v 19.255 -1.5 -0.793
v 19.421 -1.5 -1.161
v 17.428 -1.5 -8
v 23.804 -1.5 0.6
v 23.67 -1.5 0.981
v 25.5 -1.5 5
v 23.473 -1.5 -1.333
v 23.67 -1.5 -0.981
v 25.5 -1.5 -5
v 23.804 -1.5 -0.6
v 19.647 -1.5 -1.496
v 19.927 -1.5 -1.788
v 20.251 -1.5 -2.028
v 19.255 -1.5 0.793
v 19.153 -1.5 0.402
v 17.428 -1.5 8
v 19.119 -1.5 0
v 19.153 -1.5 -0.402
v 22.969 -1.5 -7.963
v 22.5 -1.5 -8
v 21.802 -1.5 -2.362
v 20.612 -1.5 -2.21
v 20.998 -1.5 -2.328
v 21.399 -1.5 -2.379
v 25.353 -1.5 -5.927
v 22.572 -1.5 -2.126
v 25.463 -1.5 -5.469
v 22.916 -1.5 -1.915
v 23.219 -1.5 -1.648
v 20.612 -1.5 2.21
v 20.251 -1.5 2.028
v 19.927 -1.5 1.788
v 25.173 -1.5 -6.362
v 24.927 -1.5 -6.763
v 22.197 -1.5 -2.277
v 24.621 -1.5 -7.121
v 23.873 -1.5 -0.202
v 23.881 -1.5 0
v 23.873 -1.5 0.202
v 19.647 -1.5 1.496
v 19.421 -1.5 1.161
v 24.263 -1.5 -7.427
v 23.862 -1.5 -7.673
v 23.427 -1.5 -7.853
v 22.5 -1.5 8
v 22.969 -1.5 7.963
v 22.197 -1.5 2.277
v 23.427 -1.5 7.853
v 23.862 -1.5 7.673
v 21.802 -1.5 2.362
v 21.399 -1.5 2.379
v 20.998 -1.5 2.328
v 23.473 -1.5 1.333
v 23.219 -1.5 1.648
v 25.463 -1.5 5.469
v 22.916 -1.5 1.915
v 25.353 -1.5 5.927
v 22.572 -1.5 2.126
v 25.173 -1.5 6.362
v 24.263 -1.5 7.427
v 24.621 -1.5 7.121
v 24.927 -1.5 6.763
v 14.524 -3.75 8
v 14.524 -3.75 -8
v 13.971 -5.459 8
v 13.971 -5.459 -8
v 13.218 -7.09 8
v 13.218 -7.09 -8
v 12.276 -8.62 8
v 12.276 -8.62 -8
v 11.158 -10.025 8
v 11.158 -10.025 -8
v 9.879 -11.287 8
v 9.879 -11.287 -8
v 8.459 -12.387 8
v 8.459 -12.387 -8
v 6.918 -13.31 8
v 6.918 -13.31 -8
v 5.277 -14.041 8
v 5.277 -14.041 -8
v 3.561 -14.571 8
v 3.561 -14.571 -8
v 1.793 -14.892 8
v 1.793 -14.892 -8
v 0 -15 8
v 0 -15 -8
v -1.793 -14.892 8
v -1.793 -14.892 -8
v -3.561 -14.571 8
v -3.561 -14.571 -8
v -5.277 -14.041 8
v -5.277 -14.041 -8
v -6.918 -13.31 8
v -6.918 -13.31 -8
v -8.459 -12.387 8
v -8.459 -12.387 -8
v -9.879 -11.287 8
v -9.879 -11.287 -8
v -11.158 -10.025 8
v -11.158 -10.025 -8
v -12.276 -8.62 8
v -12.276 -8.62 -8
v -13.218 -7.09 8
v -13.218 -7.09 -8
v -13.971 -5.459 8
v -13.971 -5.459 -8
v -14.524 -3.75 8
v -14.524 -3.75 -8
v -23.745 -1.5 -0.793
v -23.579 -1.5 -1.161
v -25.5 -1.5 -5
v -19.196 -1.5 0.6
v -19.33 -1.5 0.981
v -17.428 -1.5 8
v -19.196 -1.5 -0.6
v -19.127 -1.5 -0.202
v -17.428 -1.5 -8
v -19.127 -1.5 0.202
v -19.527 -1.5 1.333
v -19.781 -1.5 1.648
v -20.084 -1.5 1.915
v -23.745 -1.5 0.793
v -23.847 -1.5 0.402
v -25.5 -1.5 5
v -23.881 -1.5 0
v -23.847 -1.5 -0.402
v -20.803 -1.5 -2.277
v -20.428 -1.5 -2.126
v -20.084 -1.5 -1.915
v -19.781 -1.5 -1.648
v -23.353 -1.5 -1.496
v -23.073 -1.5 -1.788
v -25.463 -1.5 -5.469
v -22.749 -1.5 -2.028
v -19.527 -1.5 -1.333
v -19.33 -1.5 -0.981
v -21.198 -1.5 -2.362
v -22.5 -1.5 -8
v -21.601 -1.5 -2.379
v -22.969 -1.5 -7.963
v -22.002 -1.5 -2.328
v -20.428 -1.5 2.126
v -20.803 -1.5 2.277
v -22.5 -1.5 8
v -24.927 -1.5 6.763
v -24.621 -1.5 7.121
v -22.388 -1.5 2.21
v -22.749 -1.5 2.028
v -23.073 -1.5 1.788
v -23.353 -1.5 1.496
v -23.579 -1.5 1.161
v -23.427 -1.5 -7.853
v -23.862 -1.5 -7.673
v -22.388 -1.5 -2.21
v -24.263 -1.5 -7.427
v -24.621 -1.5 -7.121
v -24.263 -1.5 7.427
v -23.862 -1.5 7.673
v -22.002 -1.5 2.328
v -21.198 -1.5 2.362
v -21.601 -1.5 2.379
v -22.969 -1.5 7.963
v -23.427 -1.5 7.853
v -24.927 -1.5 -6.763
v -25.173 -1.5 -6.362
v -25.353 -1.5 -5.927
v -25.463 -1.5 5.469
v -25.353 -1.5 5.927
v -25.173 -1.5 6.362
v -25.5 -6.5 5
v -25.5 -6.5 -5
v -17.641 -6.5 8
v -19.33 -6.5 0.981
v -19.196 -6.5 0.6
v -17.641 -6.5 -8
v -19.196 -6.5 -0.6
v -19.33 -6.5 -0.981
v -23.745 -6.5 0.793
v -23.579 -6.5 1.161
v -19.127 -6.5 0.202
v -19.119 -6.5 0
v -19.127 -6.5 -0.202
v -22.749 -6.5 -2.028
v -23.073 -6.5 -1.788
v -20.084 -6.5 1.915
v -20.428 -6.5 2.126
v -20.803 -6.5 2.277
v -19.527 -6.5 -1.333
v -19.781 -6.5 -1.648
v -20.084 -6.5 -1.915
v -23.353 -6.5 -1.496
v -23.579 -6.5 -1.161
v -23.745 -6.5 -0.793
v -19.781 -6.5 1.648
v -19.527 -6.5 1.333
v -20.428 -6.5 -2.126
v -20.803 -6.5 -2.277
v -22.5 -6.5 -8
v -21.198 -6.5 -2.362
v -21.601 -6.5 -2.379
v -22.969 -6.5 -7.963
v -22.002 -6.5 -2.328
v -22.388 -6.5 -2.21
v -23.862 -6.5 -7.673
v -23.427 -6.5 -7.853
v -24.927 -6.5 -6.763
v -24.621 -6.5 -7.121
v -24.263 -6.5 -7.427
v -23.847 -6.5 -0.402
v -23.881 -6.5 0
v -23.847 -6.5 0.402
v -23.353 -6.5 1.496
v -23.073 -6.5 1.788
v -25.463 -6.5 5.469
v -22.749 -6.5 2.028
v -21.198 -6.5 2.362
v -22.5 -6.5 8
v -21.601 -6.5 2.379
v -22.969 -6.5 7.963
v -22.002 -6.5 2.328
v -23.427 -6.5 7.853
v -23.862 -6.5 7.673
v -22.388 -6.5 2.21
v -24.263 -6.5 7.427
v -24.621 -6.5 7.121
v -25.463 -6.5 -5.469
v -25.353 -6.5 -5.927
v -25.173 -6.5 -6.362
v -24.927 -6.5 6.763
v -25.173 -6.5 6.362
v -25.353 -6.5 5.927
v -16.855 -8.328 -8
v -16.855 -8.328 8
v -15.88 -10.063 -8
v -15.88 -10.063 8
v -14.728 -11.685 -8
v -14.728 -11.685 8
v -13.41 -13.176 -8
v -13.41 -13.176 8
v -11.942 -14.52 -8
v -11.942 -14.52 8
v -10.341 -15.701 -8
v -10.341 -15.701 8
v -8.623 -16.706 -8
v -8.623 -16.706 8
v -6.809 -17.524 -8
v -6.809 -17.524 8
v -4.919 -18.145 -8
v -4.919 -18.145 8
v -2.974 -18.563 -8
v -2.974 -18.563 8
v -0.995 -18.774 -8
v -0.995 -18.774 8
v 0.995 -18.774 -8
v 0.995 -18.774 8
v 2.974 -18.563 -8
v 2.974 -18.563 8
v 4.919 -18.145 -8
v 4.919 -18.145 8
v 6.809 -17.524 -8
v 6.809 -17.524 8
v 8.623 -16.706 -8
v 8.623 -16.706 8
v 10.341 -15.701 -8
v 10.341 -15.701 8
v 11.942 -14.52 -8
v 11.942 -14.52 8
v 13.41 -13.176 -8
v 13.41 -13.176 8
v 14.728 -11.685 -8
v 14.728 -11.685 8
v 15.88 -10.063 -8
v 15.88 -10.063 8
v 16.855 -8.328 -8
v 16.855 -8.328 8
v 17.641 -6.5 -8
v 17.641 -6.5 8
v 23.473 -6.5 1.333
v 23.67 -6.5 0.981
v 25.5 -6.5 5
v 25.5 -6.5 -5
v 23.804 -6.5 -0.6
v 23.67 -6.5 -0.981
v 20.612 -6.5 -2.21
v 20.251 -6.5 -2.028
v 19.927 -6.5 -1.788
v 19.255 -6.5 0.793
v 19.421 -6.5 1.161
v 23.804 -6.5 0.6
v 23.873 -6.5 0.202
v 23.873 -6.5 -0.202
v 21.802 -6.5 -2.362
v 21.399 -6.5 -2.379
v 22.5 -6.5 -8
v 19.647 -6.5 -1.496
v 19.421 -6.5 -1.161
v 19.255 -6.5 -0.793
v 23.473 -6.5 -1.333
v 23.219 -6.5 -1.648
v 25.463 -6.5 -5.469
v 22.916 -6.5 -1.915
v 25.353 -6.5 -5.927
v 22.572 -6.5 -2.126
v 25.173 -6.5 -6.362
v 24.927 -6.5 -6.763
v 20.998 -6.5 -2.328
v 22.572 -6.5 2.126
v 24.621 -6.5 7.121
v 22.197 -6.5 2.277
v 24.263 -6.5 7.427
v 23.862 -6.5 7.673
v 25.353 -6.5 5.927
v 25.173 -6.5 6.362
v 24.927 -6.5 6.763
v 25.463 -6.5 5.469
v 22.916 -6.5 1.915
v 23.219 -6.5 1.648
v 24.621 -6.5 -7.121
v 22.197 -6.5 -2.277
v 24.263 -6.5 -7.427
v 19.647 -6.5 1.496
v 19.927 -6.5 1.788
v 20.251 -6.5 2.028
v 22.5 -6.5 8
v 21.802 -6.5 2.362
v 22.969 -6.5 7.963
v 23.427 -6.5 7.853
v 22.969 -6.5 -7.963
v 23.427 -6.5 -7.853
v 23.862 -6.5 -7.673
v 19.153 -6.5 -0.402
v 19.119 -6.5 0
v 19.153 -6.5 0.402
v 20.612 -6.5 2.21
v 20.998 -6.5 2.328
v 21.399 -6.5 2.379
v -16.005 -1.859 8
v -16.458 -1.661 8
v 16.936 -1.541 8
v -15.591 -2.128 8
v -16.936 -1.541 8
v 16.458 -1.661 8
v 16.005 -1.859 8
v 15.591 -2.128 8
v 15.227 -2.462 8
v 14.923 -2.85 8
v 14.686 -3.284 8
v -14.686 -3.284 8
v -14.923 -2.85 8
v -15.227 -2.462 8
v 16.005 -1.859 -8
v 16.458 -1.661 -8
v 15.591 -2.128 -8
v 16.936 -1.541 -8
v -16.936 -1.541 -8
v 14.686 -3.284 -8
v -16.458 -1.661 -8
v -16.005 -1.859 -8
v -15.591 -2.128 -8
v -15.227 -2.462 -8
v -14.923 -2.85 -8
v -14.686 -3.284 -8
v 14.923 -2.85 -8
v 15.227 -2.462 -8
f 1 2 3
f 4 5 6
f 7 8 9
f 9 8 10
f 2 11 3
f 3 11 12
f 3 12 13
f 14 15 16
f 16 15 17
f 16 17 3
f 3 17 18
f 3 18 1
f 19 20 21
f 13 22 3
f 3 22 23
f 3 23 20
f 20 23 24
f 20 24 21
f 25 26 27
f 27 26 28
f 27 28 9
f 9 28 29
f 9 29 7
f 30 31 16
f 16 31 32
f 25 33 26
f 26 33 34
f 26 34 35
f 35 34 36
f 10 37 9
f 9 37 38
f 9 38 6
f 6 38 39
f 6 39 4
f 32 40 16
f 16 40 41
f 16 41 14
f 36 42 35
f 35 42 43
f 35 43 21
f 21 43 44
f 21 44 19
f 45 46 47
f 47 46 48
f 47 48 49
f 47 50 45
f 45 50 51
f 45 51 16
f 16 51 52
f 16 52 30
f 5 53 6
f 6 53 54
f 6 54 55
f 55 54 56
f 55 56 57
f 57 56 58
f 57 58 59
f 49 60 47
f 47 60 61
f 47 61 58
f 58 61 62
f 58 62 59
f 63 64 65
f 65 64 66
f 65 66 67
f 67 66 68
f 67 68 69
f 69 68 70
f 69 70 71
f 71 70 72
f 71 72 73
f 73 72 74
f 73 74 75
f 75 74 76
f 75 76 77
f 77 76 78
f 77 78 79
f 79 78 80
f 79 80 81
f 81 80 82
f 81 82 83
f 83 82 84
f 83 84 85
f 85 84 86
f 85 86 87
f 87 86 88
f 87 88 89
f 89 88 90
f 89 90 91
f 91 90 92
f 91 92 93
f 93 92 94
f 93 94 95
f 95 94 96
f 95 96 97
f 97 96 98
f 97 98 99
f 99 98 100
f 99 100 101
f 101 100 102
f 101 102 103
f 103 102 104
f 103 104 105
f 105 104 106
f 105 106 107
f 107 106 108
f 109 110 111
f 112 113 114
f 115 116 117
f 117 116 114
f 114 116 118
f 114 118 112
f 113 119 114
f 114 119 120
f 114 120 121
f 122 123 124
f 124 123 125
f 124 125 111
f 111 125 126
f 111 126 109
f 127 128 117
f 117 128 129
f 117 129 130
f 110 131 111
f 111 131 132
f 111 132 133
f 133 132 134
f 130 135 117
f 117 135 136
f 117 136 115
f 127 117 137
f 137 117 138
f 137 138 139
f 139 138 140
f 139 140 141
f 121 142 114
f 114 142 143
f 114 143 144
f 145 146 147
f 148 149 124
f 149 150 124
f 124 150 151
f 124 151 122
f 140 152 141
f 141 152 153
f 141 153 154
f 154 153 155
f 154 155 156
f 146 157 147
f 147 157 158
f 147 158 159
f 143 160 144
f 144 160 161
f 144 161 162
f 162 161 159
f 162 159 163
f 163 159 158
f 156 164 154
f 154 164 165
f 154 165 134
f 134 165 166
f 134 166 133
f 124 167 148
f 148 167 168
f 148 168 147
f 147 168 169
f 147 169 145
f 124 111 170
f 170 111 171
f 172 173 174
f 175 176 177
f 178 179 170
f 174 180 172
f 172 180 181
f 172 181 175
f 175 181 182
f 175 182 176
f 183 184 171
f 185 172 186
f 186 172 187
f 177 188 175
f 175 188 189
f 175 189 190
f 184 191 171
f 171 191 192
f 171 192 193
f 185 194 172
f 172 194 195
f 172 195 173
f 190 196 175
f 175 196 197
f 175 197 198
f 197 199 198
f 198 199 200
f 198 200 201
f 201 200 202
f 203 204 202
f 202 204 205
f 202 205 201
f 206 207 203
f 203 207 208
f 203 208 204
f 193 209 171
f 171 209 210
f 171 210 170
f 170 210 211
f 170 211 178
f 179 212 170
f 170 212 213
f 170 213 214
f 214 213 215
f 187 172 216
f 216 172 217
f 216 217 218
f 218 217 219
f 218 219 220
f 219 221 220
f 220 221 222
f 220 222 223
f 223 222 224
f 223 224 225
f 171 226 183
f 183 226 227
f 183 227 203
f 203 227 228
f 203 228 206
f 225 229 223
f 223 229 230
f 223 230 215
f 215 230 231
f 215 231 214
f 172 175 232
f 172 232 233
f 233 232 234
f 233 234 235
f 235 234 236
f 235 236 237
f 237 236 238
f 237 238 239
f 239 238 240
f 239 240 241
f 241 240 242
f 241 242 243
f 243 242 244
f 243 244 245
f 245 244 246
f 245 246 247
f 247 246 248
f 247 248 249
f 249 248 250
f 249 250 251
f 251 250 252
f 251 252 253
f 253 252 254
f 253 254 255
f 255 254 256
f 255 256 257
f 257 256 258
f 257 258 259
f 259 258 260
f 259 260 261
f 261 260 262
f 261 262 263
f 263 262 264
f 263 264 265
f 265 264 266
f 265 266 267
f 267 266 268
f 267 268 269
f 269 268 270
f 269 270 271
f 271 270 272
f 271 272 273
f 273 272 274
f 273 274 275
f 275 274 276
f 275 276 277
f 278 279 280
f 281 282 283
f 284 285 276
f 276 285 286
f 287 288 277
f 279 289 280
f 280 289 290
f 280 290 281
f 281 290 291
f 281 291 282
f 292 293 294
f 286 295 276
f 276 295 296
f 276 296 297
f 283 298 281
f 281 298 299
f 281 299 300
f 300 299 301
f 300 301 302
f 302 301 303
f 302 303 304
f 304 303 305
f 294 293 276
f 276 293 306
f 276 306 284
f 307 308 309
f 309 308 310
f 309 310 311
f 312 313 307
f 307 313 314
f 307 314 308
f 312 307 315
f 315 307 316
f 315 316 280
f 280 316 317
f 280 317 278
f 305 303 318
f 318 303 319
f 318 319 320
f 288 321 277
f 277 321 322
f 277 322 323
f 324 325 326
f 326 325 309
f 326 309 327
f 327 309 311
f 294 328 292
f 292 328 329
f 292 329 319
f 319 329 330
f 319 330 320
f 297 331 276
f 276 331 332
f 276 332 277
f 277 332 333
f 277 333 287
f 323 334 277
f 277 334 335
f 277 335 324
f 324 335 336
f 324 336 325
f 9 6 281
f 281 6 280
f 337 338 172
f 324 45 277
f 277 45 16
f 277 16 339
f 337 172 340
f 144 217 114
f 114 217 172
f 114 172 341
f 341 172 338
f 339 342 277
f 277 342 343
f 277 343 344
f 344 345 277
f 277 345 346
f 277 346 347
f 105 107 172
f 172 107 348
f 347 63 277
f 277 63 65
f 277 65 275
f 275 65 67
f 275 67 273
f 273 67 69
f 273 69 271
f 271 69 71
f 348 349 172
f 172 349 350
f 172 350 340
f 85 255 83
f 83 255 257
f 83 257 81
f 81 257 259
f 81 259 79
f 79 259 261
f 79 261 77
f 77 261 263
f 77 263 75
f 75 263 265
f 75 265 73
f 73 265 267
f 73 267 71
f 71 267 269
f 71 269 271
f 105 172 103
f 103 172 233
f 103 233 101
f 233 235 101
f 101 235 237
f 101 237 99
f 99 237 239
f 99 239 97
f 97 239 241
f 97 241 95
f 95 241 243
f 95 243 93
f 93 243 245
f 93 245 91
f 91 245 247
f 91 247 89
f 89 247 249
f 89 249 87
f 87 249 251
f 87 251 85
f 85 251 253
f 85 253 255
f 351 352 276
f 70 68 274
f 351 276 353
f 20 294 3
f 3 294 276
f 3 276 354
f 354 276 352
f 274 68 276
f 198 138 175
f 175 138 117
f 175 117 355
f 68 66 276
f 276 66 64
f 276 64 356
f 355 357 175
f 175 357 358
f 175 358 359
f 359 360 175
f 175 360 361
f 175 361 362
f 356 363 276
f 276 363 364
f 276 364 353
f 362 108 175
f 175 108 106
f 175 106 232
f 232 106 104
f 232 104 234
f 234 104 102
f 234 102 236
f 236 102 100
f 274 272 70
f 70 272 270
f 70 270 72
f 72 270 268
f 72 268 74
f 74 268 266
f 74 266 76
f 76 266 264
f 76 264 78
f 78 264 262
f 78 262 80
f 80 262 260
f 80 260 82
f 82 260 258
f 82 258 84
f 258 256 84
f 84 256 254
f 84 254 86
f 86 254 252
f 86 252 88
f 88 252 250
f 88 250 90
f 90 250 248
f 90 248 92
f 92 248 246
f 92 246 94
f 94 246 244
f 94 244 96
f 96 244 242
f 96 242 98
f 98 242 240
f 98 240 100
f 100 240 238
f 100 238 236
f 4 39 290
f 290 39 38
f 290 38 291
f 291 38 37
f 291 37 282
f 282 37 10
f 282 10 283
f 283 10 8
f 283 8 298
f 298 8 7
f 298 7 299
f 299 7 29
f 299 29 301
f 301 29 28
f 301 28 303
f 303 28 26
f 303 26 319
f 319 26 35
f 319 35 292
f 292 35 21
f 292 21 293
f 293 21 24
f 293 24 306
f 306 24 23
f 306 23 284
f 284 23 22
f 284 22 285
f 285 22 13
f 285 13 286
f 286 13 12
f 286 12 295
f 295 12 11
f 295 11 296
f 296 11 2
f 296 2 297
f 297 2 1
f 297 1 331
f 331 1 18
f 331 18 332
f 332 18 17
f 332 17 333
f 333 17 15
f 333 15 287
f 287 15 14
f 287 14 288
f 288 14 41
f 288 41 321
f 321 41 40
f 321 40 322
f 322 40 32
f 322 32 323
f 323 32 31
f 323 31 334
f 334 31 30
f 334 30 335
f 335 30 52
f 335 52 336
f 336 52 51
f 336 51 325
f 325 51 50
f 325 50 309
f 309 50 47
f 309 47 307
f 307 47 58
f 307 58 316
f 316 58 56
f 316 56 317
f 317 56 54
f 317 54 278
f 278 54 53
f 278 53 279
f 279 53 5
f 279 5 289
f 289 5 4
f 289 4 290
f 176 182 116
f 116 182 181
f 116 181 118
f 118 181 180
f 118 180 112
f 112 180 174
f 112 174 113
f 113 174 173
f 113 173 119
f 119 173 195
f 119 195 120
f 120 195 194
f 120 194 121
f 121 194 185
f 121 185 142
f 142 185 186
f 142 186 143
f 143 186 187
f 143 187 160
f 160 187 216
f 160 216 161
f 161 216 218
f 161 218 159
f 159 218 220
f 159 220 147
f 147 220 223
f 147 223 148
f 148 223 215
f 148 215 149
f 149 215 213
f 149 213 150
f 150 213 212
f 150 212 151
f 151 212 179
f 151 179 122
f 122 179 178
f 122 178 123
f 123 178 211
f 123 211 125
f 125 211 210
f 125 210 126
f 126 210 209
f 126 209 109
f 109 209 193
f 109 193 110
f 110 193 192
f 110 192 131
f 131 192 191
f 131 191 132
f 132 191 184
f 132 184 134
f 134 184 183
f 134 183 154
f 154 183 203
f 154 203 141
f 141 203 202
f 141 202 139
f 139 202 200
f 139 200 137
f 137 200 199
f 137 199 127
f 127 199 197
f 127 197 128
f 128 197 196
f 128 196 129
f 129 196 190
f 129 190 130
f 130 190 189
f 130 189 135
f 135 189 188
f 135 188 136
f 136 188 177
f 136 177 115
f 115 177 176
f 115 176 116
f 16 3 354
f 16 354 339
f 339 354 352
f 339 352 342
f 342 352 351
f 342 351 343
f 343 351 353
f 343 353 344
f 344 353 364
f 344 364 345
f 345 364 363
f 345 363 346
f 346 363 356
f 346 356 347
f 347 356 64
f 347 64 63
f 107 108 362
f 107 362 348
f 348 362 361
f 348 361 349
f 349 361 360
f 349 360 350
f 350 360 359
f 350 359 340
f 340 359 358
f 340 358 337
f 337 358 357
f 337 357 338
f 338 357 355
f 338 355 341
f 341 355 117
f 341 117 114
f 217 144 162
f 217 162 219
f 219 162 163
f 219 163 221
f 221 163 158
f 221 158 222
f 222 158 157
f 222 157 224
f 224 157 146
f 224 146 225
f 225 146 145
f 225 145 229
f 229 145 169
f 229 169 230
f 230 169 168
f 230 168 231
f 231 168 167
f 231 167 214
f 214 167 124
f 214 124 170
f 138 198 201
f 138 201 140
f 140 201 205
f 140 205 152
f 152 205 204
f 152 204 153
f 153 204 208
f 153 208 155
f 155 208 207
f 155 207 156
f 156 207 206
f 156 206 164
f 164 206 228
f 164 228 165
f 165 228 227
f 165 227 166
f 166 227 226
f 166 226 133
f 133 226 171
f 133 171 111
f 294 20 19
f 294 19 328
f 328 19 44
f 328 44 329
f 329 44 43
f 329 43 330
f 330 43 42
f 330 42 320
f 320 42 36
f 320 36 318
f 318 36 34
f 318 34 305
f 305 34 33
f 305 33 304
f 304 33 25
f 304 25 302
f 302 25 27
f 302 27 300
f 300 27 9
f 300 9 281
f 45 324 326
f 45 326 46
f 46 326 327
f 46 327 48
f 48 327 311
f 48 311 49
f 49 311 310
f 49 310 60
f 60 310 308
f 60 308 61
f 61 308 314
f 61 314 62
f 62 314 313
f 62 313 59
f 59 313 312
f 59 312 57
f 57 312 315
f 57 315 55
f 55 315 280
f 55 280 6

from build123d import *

# Parameters (mm, degrees)
SALIENTE_EXTRUIR1_DEPTH = 8
CROQUIS2_R              = 2.38125
CORTAR_EXTRUIR1_DEPTH   = 16
REDONDEO1_R             = 3


with BuildPart() as part:
    # Croquis1 → Saliente-Extruir1 (new, symmetric)
    with BuildSketch(Plane.XY):
        with BuildLine():
            Line((25.5, -1.5), (18.740064034, -1.5))
            ThreePointArc((18.740064034, -1.5), (18.361312119, -4.037600434), (17.640578222, -6.5))
            Line((17.640578222, -6.5), (25.5, -6.5))
            Line((25.5, -6.5), (25.5, -1.5))
        make_face()
        with BuildLine():
            Line((18.740064034, -1.5), (14.924811557, -1.5))
            ThreePointArc((14.924811557, -1.5), (14.43972216, -4.06133278), (13.518505835, -6.5))
            Line((13.518505835, -6.5), (17.640578222, -6.5))
            ThreePointArc((17.640578222, -6.5), (18.361312119, -4.037600434), (18.740064034, -1.5))
        make_face()
        with BuildLine():
            ThreePointArc((13.518505835, -6.5), (0, -15), (-13.518505835, -6.5))
            Line((-13.518505835, -6.5), (-17.640578222, -6.5))
            ThreePointArc((-17.640578222, -6.5), (0, -18.8), (17.640578222, -6.5))
            Line((17.640578222, -6.5), (13.518505835, -6.5))
        make_face()
        with BuildLine():
            ThreePointArc((-13.518505835, -6.5), (-14.43972216, -4.06133278), (-14.924811557, -1.5))
            Line((-14.924811557, -1.5), (-18.740064034, -1.5))
            ThreePointArc((-18.740064034, -1.5), (-18.361312119, -4.037600434), (-17.640578222, -6.5))
            Line((-17.640578222, -6.5), (-13.518505835, -6.5))
        make_face()
        with BuildLine():
            ThreePointArc((-17.640578222, -6.5), (-18.361312119, -4.037600434), (-18.740064034, -1.5))
            Line((-18.740064034, -1.5), (-25.5, -1.5))
            Line((-25.5, -1.5), (-25.5, -6.5))
            Line((-25.5, -6.5), (-17.640578222, -6.5))
        make_face()
    extrude(amount=SALIENTE_EXTRUIR1_DEPTH, both=True)

    # Croquis2 → Cortar-Extruir1 (cut)
    with BuildSketch(Plane(origin=(0, -1.5, 0), x_dir=(1, 0, 0), z_dir=(0, 1, 0))):
        with Locations(Location((-21.5, 0, 0), (0, 0, 180))):
            Circle(CROQUIS2_R)
        with Locations(Location((21.5, 0, 0), (0, 0, 180))):
            Circle(CROQUIS2_R)
    extrude(amount=-CORTAR_EXTRUIR1_DEPTH, mode=Mode.SUBTRACT)

    # Redondeo1
    redondeo1_edges = [part.edges().sort_by_distance(p)[0] for p in [
        (25.5, -4, -8),
        (-25.5, -4, -8),
        (-14.924811557, -1.5, 0),
        (14.924811557, -1.5, 0),
        (-25.5, -4, 8),
        (25.5, -4, 8),
    ]]
    fillet(redondeo1_edges, radius=REDONDEO1_R)


solid = part.part
